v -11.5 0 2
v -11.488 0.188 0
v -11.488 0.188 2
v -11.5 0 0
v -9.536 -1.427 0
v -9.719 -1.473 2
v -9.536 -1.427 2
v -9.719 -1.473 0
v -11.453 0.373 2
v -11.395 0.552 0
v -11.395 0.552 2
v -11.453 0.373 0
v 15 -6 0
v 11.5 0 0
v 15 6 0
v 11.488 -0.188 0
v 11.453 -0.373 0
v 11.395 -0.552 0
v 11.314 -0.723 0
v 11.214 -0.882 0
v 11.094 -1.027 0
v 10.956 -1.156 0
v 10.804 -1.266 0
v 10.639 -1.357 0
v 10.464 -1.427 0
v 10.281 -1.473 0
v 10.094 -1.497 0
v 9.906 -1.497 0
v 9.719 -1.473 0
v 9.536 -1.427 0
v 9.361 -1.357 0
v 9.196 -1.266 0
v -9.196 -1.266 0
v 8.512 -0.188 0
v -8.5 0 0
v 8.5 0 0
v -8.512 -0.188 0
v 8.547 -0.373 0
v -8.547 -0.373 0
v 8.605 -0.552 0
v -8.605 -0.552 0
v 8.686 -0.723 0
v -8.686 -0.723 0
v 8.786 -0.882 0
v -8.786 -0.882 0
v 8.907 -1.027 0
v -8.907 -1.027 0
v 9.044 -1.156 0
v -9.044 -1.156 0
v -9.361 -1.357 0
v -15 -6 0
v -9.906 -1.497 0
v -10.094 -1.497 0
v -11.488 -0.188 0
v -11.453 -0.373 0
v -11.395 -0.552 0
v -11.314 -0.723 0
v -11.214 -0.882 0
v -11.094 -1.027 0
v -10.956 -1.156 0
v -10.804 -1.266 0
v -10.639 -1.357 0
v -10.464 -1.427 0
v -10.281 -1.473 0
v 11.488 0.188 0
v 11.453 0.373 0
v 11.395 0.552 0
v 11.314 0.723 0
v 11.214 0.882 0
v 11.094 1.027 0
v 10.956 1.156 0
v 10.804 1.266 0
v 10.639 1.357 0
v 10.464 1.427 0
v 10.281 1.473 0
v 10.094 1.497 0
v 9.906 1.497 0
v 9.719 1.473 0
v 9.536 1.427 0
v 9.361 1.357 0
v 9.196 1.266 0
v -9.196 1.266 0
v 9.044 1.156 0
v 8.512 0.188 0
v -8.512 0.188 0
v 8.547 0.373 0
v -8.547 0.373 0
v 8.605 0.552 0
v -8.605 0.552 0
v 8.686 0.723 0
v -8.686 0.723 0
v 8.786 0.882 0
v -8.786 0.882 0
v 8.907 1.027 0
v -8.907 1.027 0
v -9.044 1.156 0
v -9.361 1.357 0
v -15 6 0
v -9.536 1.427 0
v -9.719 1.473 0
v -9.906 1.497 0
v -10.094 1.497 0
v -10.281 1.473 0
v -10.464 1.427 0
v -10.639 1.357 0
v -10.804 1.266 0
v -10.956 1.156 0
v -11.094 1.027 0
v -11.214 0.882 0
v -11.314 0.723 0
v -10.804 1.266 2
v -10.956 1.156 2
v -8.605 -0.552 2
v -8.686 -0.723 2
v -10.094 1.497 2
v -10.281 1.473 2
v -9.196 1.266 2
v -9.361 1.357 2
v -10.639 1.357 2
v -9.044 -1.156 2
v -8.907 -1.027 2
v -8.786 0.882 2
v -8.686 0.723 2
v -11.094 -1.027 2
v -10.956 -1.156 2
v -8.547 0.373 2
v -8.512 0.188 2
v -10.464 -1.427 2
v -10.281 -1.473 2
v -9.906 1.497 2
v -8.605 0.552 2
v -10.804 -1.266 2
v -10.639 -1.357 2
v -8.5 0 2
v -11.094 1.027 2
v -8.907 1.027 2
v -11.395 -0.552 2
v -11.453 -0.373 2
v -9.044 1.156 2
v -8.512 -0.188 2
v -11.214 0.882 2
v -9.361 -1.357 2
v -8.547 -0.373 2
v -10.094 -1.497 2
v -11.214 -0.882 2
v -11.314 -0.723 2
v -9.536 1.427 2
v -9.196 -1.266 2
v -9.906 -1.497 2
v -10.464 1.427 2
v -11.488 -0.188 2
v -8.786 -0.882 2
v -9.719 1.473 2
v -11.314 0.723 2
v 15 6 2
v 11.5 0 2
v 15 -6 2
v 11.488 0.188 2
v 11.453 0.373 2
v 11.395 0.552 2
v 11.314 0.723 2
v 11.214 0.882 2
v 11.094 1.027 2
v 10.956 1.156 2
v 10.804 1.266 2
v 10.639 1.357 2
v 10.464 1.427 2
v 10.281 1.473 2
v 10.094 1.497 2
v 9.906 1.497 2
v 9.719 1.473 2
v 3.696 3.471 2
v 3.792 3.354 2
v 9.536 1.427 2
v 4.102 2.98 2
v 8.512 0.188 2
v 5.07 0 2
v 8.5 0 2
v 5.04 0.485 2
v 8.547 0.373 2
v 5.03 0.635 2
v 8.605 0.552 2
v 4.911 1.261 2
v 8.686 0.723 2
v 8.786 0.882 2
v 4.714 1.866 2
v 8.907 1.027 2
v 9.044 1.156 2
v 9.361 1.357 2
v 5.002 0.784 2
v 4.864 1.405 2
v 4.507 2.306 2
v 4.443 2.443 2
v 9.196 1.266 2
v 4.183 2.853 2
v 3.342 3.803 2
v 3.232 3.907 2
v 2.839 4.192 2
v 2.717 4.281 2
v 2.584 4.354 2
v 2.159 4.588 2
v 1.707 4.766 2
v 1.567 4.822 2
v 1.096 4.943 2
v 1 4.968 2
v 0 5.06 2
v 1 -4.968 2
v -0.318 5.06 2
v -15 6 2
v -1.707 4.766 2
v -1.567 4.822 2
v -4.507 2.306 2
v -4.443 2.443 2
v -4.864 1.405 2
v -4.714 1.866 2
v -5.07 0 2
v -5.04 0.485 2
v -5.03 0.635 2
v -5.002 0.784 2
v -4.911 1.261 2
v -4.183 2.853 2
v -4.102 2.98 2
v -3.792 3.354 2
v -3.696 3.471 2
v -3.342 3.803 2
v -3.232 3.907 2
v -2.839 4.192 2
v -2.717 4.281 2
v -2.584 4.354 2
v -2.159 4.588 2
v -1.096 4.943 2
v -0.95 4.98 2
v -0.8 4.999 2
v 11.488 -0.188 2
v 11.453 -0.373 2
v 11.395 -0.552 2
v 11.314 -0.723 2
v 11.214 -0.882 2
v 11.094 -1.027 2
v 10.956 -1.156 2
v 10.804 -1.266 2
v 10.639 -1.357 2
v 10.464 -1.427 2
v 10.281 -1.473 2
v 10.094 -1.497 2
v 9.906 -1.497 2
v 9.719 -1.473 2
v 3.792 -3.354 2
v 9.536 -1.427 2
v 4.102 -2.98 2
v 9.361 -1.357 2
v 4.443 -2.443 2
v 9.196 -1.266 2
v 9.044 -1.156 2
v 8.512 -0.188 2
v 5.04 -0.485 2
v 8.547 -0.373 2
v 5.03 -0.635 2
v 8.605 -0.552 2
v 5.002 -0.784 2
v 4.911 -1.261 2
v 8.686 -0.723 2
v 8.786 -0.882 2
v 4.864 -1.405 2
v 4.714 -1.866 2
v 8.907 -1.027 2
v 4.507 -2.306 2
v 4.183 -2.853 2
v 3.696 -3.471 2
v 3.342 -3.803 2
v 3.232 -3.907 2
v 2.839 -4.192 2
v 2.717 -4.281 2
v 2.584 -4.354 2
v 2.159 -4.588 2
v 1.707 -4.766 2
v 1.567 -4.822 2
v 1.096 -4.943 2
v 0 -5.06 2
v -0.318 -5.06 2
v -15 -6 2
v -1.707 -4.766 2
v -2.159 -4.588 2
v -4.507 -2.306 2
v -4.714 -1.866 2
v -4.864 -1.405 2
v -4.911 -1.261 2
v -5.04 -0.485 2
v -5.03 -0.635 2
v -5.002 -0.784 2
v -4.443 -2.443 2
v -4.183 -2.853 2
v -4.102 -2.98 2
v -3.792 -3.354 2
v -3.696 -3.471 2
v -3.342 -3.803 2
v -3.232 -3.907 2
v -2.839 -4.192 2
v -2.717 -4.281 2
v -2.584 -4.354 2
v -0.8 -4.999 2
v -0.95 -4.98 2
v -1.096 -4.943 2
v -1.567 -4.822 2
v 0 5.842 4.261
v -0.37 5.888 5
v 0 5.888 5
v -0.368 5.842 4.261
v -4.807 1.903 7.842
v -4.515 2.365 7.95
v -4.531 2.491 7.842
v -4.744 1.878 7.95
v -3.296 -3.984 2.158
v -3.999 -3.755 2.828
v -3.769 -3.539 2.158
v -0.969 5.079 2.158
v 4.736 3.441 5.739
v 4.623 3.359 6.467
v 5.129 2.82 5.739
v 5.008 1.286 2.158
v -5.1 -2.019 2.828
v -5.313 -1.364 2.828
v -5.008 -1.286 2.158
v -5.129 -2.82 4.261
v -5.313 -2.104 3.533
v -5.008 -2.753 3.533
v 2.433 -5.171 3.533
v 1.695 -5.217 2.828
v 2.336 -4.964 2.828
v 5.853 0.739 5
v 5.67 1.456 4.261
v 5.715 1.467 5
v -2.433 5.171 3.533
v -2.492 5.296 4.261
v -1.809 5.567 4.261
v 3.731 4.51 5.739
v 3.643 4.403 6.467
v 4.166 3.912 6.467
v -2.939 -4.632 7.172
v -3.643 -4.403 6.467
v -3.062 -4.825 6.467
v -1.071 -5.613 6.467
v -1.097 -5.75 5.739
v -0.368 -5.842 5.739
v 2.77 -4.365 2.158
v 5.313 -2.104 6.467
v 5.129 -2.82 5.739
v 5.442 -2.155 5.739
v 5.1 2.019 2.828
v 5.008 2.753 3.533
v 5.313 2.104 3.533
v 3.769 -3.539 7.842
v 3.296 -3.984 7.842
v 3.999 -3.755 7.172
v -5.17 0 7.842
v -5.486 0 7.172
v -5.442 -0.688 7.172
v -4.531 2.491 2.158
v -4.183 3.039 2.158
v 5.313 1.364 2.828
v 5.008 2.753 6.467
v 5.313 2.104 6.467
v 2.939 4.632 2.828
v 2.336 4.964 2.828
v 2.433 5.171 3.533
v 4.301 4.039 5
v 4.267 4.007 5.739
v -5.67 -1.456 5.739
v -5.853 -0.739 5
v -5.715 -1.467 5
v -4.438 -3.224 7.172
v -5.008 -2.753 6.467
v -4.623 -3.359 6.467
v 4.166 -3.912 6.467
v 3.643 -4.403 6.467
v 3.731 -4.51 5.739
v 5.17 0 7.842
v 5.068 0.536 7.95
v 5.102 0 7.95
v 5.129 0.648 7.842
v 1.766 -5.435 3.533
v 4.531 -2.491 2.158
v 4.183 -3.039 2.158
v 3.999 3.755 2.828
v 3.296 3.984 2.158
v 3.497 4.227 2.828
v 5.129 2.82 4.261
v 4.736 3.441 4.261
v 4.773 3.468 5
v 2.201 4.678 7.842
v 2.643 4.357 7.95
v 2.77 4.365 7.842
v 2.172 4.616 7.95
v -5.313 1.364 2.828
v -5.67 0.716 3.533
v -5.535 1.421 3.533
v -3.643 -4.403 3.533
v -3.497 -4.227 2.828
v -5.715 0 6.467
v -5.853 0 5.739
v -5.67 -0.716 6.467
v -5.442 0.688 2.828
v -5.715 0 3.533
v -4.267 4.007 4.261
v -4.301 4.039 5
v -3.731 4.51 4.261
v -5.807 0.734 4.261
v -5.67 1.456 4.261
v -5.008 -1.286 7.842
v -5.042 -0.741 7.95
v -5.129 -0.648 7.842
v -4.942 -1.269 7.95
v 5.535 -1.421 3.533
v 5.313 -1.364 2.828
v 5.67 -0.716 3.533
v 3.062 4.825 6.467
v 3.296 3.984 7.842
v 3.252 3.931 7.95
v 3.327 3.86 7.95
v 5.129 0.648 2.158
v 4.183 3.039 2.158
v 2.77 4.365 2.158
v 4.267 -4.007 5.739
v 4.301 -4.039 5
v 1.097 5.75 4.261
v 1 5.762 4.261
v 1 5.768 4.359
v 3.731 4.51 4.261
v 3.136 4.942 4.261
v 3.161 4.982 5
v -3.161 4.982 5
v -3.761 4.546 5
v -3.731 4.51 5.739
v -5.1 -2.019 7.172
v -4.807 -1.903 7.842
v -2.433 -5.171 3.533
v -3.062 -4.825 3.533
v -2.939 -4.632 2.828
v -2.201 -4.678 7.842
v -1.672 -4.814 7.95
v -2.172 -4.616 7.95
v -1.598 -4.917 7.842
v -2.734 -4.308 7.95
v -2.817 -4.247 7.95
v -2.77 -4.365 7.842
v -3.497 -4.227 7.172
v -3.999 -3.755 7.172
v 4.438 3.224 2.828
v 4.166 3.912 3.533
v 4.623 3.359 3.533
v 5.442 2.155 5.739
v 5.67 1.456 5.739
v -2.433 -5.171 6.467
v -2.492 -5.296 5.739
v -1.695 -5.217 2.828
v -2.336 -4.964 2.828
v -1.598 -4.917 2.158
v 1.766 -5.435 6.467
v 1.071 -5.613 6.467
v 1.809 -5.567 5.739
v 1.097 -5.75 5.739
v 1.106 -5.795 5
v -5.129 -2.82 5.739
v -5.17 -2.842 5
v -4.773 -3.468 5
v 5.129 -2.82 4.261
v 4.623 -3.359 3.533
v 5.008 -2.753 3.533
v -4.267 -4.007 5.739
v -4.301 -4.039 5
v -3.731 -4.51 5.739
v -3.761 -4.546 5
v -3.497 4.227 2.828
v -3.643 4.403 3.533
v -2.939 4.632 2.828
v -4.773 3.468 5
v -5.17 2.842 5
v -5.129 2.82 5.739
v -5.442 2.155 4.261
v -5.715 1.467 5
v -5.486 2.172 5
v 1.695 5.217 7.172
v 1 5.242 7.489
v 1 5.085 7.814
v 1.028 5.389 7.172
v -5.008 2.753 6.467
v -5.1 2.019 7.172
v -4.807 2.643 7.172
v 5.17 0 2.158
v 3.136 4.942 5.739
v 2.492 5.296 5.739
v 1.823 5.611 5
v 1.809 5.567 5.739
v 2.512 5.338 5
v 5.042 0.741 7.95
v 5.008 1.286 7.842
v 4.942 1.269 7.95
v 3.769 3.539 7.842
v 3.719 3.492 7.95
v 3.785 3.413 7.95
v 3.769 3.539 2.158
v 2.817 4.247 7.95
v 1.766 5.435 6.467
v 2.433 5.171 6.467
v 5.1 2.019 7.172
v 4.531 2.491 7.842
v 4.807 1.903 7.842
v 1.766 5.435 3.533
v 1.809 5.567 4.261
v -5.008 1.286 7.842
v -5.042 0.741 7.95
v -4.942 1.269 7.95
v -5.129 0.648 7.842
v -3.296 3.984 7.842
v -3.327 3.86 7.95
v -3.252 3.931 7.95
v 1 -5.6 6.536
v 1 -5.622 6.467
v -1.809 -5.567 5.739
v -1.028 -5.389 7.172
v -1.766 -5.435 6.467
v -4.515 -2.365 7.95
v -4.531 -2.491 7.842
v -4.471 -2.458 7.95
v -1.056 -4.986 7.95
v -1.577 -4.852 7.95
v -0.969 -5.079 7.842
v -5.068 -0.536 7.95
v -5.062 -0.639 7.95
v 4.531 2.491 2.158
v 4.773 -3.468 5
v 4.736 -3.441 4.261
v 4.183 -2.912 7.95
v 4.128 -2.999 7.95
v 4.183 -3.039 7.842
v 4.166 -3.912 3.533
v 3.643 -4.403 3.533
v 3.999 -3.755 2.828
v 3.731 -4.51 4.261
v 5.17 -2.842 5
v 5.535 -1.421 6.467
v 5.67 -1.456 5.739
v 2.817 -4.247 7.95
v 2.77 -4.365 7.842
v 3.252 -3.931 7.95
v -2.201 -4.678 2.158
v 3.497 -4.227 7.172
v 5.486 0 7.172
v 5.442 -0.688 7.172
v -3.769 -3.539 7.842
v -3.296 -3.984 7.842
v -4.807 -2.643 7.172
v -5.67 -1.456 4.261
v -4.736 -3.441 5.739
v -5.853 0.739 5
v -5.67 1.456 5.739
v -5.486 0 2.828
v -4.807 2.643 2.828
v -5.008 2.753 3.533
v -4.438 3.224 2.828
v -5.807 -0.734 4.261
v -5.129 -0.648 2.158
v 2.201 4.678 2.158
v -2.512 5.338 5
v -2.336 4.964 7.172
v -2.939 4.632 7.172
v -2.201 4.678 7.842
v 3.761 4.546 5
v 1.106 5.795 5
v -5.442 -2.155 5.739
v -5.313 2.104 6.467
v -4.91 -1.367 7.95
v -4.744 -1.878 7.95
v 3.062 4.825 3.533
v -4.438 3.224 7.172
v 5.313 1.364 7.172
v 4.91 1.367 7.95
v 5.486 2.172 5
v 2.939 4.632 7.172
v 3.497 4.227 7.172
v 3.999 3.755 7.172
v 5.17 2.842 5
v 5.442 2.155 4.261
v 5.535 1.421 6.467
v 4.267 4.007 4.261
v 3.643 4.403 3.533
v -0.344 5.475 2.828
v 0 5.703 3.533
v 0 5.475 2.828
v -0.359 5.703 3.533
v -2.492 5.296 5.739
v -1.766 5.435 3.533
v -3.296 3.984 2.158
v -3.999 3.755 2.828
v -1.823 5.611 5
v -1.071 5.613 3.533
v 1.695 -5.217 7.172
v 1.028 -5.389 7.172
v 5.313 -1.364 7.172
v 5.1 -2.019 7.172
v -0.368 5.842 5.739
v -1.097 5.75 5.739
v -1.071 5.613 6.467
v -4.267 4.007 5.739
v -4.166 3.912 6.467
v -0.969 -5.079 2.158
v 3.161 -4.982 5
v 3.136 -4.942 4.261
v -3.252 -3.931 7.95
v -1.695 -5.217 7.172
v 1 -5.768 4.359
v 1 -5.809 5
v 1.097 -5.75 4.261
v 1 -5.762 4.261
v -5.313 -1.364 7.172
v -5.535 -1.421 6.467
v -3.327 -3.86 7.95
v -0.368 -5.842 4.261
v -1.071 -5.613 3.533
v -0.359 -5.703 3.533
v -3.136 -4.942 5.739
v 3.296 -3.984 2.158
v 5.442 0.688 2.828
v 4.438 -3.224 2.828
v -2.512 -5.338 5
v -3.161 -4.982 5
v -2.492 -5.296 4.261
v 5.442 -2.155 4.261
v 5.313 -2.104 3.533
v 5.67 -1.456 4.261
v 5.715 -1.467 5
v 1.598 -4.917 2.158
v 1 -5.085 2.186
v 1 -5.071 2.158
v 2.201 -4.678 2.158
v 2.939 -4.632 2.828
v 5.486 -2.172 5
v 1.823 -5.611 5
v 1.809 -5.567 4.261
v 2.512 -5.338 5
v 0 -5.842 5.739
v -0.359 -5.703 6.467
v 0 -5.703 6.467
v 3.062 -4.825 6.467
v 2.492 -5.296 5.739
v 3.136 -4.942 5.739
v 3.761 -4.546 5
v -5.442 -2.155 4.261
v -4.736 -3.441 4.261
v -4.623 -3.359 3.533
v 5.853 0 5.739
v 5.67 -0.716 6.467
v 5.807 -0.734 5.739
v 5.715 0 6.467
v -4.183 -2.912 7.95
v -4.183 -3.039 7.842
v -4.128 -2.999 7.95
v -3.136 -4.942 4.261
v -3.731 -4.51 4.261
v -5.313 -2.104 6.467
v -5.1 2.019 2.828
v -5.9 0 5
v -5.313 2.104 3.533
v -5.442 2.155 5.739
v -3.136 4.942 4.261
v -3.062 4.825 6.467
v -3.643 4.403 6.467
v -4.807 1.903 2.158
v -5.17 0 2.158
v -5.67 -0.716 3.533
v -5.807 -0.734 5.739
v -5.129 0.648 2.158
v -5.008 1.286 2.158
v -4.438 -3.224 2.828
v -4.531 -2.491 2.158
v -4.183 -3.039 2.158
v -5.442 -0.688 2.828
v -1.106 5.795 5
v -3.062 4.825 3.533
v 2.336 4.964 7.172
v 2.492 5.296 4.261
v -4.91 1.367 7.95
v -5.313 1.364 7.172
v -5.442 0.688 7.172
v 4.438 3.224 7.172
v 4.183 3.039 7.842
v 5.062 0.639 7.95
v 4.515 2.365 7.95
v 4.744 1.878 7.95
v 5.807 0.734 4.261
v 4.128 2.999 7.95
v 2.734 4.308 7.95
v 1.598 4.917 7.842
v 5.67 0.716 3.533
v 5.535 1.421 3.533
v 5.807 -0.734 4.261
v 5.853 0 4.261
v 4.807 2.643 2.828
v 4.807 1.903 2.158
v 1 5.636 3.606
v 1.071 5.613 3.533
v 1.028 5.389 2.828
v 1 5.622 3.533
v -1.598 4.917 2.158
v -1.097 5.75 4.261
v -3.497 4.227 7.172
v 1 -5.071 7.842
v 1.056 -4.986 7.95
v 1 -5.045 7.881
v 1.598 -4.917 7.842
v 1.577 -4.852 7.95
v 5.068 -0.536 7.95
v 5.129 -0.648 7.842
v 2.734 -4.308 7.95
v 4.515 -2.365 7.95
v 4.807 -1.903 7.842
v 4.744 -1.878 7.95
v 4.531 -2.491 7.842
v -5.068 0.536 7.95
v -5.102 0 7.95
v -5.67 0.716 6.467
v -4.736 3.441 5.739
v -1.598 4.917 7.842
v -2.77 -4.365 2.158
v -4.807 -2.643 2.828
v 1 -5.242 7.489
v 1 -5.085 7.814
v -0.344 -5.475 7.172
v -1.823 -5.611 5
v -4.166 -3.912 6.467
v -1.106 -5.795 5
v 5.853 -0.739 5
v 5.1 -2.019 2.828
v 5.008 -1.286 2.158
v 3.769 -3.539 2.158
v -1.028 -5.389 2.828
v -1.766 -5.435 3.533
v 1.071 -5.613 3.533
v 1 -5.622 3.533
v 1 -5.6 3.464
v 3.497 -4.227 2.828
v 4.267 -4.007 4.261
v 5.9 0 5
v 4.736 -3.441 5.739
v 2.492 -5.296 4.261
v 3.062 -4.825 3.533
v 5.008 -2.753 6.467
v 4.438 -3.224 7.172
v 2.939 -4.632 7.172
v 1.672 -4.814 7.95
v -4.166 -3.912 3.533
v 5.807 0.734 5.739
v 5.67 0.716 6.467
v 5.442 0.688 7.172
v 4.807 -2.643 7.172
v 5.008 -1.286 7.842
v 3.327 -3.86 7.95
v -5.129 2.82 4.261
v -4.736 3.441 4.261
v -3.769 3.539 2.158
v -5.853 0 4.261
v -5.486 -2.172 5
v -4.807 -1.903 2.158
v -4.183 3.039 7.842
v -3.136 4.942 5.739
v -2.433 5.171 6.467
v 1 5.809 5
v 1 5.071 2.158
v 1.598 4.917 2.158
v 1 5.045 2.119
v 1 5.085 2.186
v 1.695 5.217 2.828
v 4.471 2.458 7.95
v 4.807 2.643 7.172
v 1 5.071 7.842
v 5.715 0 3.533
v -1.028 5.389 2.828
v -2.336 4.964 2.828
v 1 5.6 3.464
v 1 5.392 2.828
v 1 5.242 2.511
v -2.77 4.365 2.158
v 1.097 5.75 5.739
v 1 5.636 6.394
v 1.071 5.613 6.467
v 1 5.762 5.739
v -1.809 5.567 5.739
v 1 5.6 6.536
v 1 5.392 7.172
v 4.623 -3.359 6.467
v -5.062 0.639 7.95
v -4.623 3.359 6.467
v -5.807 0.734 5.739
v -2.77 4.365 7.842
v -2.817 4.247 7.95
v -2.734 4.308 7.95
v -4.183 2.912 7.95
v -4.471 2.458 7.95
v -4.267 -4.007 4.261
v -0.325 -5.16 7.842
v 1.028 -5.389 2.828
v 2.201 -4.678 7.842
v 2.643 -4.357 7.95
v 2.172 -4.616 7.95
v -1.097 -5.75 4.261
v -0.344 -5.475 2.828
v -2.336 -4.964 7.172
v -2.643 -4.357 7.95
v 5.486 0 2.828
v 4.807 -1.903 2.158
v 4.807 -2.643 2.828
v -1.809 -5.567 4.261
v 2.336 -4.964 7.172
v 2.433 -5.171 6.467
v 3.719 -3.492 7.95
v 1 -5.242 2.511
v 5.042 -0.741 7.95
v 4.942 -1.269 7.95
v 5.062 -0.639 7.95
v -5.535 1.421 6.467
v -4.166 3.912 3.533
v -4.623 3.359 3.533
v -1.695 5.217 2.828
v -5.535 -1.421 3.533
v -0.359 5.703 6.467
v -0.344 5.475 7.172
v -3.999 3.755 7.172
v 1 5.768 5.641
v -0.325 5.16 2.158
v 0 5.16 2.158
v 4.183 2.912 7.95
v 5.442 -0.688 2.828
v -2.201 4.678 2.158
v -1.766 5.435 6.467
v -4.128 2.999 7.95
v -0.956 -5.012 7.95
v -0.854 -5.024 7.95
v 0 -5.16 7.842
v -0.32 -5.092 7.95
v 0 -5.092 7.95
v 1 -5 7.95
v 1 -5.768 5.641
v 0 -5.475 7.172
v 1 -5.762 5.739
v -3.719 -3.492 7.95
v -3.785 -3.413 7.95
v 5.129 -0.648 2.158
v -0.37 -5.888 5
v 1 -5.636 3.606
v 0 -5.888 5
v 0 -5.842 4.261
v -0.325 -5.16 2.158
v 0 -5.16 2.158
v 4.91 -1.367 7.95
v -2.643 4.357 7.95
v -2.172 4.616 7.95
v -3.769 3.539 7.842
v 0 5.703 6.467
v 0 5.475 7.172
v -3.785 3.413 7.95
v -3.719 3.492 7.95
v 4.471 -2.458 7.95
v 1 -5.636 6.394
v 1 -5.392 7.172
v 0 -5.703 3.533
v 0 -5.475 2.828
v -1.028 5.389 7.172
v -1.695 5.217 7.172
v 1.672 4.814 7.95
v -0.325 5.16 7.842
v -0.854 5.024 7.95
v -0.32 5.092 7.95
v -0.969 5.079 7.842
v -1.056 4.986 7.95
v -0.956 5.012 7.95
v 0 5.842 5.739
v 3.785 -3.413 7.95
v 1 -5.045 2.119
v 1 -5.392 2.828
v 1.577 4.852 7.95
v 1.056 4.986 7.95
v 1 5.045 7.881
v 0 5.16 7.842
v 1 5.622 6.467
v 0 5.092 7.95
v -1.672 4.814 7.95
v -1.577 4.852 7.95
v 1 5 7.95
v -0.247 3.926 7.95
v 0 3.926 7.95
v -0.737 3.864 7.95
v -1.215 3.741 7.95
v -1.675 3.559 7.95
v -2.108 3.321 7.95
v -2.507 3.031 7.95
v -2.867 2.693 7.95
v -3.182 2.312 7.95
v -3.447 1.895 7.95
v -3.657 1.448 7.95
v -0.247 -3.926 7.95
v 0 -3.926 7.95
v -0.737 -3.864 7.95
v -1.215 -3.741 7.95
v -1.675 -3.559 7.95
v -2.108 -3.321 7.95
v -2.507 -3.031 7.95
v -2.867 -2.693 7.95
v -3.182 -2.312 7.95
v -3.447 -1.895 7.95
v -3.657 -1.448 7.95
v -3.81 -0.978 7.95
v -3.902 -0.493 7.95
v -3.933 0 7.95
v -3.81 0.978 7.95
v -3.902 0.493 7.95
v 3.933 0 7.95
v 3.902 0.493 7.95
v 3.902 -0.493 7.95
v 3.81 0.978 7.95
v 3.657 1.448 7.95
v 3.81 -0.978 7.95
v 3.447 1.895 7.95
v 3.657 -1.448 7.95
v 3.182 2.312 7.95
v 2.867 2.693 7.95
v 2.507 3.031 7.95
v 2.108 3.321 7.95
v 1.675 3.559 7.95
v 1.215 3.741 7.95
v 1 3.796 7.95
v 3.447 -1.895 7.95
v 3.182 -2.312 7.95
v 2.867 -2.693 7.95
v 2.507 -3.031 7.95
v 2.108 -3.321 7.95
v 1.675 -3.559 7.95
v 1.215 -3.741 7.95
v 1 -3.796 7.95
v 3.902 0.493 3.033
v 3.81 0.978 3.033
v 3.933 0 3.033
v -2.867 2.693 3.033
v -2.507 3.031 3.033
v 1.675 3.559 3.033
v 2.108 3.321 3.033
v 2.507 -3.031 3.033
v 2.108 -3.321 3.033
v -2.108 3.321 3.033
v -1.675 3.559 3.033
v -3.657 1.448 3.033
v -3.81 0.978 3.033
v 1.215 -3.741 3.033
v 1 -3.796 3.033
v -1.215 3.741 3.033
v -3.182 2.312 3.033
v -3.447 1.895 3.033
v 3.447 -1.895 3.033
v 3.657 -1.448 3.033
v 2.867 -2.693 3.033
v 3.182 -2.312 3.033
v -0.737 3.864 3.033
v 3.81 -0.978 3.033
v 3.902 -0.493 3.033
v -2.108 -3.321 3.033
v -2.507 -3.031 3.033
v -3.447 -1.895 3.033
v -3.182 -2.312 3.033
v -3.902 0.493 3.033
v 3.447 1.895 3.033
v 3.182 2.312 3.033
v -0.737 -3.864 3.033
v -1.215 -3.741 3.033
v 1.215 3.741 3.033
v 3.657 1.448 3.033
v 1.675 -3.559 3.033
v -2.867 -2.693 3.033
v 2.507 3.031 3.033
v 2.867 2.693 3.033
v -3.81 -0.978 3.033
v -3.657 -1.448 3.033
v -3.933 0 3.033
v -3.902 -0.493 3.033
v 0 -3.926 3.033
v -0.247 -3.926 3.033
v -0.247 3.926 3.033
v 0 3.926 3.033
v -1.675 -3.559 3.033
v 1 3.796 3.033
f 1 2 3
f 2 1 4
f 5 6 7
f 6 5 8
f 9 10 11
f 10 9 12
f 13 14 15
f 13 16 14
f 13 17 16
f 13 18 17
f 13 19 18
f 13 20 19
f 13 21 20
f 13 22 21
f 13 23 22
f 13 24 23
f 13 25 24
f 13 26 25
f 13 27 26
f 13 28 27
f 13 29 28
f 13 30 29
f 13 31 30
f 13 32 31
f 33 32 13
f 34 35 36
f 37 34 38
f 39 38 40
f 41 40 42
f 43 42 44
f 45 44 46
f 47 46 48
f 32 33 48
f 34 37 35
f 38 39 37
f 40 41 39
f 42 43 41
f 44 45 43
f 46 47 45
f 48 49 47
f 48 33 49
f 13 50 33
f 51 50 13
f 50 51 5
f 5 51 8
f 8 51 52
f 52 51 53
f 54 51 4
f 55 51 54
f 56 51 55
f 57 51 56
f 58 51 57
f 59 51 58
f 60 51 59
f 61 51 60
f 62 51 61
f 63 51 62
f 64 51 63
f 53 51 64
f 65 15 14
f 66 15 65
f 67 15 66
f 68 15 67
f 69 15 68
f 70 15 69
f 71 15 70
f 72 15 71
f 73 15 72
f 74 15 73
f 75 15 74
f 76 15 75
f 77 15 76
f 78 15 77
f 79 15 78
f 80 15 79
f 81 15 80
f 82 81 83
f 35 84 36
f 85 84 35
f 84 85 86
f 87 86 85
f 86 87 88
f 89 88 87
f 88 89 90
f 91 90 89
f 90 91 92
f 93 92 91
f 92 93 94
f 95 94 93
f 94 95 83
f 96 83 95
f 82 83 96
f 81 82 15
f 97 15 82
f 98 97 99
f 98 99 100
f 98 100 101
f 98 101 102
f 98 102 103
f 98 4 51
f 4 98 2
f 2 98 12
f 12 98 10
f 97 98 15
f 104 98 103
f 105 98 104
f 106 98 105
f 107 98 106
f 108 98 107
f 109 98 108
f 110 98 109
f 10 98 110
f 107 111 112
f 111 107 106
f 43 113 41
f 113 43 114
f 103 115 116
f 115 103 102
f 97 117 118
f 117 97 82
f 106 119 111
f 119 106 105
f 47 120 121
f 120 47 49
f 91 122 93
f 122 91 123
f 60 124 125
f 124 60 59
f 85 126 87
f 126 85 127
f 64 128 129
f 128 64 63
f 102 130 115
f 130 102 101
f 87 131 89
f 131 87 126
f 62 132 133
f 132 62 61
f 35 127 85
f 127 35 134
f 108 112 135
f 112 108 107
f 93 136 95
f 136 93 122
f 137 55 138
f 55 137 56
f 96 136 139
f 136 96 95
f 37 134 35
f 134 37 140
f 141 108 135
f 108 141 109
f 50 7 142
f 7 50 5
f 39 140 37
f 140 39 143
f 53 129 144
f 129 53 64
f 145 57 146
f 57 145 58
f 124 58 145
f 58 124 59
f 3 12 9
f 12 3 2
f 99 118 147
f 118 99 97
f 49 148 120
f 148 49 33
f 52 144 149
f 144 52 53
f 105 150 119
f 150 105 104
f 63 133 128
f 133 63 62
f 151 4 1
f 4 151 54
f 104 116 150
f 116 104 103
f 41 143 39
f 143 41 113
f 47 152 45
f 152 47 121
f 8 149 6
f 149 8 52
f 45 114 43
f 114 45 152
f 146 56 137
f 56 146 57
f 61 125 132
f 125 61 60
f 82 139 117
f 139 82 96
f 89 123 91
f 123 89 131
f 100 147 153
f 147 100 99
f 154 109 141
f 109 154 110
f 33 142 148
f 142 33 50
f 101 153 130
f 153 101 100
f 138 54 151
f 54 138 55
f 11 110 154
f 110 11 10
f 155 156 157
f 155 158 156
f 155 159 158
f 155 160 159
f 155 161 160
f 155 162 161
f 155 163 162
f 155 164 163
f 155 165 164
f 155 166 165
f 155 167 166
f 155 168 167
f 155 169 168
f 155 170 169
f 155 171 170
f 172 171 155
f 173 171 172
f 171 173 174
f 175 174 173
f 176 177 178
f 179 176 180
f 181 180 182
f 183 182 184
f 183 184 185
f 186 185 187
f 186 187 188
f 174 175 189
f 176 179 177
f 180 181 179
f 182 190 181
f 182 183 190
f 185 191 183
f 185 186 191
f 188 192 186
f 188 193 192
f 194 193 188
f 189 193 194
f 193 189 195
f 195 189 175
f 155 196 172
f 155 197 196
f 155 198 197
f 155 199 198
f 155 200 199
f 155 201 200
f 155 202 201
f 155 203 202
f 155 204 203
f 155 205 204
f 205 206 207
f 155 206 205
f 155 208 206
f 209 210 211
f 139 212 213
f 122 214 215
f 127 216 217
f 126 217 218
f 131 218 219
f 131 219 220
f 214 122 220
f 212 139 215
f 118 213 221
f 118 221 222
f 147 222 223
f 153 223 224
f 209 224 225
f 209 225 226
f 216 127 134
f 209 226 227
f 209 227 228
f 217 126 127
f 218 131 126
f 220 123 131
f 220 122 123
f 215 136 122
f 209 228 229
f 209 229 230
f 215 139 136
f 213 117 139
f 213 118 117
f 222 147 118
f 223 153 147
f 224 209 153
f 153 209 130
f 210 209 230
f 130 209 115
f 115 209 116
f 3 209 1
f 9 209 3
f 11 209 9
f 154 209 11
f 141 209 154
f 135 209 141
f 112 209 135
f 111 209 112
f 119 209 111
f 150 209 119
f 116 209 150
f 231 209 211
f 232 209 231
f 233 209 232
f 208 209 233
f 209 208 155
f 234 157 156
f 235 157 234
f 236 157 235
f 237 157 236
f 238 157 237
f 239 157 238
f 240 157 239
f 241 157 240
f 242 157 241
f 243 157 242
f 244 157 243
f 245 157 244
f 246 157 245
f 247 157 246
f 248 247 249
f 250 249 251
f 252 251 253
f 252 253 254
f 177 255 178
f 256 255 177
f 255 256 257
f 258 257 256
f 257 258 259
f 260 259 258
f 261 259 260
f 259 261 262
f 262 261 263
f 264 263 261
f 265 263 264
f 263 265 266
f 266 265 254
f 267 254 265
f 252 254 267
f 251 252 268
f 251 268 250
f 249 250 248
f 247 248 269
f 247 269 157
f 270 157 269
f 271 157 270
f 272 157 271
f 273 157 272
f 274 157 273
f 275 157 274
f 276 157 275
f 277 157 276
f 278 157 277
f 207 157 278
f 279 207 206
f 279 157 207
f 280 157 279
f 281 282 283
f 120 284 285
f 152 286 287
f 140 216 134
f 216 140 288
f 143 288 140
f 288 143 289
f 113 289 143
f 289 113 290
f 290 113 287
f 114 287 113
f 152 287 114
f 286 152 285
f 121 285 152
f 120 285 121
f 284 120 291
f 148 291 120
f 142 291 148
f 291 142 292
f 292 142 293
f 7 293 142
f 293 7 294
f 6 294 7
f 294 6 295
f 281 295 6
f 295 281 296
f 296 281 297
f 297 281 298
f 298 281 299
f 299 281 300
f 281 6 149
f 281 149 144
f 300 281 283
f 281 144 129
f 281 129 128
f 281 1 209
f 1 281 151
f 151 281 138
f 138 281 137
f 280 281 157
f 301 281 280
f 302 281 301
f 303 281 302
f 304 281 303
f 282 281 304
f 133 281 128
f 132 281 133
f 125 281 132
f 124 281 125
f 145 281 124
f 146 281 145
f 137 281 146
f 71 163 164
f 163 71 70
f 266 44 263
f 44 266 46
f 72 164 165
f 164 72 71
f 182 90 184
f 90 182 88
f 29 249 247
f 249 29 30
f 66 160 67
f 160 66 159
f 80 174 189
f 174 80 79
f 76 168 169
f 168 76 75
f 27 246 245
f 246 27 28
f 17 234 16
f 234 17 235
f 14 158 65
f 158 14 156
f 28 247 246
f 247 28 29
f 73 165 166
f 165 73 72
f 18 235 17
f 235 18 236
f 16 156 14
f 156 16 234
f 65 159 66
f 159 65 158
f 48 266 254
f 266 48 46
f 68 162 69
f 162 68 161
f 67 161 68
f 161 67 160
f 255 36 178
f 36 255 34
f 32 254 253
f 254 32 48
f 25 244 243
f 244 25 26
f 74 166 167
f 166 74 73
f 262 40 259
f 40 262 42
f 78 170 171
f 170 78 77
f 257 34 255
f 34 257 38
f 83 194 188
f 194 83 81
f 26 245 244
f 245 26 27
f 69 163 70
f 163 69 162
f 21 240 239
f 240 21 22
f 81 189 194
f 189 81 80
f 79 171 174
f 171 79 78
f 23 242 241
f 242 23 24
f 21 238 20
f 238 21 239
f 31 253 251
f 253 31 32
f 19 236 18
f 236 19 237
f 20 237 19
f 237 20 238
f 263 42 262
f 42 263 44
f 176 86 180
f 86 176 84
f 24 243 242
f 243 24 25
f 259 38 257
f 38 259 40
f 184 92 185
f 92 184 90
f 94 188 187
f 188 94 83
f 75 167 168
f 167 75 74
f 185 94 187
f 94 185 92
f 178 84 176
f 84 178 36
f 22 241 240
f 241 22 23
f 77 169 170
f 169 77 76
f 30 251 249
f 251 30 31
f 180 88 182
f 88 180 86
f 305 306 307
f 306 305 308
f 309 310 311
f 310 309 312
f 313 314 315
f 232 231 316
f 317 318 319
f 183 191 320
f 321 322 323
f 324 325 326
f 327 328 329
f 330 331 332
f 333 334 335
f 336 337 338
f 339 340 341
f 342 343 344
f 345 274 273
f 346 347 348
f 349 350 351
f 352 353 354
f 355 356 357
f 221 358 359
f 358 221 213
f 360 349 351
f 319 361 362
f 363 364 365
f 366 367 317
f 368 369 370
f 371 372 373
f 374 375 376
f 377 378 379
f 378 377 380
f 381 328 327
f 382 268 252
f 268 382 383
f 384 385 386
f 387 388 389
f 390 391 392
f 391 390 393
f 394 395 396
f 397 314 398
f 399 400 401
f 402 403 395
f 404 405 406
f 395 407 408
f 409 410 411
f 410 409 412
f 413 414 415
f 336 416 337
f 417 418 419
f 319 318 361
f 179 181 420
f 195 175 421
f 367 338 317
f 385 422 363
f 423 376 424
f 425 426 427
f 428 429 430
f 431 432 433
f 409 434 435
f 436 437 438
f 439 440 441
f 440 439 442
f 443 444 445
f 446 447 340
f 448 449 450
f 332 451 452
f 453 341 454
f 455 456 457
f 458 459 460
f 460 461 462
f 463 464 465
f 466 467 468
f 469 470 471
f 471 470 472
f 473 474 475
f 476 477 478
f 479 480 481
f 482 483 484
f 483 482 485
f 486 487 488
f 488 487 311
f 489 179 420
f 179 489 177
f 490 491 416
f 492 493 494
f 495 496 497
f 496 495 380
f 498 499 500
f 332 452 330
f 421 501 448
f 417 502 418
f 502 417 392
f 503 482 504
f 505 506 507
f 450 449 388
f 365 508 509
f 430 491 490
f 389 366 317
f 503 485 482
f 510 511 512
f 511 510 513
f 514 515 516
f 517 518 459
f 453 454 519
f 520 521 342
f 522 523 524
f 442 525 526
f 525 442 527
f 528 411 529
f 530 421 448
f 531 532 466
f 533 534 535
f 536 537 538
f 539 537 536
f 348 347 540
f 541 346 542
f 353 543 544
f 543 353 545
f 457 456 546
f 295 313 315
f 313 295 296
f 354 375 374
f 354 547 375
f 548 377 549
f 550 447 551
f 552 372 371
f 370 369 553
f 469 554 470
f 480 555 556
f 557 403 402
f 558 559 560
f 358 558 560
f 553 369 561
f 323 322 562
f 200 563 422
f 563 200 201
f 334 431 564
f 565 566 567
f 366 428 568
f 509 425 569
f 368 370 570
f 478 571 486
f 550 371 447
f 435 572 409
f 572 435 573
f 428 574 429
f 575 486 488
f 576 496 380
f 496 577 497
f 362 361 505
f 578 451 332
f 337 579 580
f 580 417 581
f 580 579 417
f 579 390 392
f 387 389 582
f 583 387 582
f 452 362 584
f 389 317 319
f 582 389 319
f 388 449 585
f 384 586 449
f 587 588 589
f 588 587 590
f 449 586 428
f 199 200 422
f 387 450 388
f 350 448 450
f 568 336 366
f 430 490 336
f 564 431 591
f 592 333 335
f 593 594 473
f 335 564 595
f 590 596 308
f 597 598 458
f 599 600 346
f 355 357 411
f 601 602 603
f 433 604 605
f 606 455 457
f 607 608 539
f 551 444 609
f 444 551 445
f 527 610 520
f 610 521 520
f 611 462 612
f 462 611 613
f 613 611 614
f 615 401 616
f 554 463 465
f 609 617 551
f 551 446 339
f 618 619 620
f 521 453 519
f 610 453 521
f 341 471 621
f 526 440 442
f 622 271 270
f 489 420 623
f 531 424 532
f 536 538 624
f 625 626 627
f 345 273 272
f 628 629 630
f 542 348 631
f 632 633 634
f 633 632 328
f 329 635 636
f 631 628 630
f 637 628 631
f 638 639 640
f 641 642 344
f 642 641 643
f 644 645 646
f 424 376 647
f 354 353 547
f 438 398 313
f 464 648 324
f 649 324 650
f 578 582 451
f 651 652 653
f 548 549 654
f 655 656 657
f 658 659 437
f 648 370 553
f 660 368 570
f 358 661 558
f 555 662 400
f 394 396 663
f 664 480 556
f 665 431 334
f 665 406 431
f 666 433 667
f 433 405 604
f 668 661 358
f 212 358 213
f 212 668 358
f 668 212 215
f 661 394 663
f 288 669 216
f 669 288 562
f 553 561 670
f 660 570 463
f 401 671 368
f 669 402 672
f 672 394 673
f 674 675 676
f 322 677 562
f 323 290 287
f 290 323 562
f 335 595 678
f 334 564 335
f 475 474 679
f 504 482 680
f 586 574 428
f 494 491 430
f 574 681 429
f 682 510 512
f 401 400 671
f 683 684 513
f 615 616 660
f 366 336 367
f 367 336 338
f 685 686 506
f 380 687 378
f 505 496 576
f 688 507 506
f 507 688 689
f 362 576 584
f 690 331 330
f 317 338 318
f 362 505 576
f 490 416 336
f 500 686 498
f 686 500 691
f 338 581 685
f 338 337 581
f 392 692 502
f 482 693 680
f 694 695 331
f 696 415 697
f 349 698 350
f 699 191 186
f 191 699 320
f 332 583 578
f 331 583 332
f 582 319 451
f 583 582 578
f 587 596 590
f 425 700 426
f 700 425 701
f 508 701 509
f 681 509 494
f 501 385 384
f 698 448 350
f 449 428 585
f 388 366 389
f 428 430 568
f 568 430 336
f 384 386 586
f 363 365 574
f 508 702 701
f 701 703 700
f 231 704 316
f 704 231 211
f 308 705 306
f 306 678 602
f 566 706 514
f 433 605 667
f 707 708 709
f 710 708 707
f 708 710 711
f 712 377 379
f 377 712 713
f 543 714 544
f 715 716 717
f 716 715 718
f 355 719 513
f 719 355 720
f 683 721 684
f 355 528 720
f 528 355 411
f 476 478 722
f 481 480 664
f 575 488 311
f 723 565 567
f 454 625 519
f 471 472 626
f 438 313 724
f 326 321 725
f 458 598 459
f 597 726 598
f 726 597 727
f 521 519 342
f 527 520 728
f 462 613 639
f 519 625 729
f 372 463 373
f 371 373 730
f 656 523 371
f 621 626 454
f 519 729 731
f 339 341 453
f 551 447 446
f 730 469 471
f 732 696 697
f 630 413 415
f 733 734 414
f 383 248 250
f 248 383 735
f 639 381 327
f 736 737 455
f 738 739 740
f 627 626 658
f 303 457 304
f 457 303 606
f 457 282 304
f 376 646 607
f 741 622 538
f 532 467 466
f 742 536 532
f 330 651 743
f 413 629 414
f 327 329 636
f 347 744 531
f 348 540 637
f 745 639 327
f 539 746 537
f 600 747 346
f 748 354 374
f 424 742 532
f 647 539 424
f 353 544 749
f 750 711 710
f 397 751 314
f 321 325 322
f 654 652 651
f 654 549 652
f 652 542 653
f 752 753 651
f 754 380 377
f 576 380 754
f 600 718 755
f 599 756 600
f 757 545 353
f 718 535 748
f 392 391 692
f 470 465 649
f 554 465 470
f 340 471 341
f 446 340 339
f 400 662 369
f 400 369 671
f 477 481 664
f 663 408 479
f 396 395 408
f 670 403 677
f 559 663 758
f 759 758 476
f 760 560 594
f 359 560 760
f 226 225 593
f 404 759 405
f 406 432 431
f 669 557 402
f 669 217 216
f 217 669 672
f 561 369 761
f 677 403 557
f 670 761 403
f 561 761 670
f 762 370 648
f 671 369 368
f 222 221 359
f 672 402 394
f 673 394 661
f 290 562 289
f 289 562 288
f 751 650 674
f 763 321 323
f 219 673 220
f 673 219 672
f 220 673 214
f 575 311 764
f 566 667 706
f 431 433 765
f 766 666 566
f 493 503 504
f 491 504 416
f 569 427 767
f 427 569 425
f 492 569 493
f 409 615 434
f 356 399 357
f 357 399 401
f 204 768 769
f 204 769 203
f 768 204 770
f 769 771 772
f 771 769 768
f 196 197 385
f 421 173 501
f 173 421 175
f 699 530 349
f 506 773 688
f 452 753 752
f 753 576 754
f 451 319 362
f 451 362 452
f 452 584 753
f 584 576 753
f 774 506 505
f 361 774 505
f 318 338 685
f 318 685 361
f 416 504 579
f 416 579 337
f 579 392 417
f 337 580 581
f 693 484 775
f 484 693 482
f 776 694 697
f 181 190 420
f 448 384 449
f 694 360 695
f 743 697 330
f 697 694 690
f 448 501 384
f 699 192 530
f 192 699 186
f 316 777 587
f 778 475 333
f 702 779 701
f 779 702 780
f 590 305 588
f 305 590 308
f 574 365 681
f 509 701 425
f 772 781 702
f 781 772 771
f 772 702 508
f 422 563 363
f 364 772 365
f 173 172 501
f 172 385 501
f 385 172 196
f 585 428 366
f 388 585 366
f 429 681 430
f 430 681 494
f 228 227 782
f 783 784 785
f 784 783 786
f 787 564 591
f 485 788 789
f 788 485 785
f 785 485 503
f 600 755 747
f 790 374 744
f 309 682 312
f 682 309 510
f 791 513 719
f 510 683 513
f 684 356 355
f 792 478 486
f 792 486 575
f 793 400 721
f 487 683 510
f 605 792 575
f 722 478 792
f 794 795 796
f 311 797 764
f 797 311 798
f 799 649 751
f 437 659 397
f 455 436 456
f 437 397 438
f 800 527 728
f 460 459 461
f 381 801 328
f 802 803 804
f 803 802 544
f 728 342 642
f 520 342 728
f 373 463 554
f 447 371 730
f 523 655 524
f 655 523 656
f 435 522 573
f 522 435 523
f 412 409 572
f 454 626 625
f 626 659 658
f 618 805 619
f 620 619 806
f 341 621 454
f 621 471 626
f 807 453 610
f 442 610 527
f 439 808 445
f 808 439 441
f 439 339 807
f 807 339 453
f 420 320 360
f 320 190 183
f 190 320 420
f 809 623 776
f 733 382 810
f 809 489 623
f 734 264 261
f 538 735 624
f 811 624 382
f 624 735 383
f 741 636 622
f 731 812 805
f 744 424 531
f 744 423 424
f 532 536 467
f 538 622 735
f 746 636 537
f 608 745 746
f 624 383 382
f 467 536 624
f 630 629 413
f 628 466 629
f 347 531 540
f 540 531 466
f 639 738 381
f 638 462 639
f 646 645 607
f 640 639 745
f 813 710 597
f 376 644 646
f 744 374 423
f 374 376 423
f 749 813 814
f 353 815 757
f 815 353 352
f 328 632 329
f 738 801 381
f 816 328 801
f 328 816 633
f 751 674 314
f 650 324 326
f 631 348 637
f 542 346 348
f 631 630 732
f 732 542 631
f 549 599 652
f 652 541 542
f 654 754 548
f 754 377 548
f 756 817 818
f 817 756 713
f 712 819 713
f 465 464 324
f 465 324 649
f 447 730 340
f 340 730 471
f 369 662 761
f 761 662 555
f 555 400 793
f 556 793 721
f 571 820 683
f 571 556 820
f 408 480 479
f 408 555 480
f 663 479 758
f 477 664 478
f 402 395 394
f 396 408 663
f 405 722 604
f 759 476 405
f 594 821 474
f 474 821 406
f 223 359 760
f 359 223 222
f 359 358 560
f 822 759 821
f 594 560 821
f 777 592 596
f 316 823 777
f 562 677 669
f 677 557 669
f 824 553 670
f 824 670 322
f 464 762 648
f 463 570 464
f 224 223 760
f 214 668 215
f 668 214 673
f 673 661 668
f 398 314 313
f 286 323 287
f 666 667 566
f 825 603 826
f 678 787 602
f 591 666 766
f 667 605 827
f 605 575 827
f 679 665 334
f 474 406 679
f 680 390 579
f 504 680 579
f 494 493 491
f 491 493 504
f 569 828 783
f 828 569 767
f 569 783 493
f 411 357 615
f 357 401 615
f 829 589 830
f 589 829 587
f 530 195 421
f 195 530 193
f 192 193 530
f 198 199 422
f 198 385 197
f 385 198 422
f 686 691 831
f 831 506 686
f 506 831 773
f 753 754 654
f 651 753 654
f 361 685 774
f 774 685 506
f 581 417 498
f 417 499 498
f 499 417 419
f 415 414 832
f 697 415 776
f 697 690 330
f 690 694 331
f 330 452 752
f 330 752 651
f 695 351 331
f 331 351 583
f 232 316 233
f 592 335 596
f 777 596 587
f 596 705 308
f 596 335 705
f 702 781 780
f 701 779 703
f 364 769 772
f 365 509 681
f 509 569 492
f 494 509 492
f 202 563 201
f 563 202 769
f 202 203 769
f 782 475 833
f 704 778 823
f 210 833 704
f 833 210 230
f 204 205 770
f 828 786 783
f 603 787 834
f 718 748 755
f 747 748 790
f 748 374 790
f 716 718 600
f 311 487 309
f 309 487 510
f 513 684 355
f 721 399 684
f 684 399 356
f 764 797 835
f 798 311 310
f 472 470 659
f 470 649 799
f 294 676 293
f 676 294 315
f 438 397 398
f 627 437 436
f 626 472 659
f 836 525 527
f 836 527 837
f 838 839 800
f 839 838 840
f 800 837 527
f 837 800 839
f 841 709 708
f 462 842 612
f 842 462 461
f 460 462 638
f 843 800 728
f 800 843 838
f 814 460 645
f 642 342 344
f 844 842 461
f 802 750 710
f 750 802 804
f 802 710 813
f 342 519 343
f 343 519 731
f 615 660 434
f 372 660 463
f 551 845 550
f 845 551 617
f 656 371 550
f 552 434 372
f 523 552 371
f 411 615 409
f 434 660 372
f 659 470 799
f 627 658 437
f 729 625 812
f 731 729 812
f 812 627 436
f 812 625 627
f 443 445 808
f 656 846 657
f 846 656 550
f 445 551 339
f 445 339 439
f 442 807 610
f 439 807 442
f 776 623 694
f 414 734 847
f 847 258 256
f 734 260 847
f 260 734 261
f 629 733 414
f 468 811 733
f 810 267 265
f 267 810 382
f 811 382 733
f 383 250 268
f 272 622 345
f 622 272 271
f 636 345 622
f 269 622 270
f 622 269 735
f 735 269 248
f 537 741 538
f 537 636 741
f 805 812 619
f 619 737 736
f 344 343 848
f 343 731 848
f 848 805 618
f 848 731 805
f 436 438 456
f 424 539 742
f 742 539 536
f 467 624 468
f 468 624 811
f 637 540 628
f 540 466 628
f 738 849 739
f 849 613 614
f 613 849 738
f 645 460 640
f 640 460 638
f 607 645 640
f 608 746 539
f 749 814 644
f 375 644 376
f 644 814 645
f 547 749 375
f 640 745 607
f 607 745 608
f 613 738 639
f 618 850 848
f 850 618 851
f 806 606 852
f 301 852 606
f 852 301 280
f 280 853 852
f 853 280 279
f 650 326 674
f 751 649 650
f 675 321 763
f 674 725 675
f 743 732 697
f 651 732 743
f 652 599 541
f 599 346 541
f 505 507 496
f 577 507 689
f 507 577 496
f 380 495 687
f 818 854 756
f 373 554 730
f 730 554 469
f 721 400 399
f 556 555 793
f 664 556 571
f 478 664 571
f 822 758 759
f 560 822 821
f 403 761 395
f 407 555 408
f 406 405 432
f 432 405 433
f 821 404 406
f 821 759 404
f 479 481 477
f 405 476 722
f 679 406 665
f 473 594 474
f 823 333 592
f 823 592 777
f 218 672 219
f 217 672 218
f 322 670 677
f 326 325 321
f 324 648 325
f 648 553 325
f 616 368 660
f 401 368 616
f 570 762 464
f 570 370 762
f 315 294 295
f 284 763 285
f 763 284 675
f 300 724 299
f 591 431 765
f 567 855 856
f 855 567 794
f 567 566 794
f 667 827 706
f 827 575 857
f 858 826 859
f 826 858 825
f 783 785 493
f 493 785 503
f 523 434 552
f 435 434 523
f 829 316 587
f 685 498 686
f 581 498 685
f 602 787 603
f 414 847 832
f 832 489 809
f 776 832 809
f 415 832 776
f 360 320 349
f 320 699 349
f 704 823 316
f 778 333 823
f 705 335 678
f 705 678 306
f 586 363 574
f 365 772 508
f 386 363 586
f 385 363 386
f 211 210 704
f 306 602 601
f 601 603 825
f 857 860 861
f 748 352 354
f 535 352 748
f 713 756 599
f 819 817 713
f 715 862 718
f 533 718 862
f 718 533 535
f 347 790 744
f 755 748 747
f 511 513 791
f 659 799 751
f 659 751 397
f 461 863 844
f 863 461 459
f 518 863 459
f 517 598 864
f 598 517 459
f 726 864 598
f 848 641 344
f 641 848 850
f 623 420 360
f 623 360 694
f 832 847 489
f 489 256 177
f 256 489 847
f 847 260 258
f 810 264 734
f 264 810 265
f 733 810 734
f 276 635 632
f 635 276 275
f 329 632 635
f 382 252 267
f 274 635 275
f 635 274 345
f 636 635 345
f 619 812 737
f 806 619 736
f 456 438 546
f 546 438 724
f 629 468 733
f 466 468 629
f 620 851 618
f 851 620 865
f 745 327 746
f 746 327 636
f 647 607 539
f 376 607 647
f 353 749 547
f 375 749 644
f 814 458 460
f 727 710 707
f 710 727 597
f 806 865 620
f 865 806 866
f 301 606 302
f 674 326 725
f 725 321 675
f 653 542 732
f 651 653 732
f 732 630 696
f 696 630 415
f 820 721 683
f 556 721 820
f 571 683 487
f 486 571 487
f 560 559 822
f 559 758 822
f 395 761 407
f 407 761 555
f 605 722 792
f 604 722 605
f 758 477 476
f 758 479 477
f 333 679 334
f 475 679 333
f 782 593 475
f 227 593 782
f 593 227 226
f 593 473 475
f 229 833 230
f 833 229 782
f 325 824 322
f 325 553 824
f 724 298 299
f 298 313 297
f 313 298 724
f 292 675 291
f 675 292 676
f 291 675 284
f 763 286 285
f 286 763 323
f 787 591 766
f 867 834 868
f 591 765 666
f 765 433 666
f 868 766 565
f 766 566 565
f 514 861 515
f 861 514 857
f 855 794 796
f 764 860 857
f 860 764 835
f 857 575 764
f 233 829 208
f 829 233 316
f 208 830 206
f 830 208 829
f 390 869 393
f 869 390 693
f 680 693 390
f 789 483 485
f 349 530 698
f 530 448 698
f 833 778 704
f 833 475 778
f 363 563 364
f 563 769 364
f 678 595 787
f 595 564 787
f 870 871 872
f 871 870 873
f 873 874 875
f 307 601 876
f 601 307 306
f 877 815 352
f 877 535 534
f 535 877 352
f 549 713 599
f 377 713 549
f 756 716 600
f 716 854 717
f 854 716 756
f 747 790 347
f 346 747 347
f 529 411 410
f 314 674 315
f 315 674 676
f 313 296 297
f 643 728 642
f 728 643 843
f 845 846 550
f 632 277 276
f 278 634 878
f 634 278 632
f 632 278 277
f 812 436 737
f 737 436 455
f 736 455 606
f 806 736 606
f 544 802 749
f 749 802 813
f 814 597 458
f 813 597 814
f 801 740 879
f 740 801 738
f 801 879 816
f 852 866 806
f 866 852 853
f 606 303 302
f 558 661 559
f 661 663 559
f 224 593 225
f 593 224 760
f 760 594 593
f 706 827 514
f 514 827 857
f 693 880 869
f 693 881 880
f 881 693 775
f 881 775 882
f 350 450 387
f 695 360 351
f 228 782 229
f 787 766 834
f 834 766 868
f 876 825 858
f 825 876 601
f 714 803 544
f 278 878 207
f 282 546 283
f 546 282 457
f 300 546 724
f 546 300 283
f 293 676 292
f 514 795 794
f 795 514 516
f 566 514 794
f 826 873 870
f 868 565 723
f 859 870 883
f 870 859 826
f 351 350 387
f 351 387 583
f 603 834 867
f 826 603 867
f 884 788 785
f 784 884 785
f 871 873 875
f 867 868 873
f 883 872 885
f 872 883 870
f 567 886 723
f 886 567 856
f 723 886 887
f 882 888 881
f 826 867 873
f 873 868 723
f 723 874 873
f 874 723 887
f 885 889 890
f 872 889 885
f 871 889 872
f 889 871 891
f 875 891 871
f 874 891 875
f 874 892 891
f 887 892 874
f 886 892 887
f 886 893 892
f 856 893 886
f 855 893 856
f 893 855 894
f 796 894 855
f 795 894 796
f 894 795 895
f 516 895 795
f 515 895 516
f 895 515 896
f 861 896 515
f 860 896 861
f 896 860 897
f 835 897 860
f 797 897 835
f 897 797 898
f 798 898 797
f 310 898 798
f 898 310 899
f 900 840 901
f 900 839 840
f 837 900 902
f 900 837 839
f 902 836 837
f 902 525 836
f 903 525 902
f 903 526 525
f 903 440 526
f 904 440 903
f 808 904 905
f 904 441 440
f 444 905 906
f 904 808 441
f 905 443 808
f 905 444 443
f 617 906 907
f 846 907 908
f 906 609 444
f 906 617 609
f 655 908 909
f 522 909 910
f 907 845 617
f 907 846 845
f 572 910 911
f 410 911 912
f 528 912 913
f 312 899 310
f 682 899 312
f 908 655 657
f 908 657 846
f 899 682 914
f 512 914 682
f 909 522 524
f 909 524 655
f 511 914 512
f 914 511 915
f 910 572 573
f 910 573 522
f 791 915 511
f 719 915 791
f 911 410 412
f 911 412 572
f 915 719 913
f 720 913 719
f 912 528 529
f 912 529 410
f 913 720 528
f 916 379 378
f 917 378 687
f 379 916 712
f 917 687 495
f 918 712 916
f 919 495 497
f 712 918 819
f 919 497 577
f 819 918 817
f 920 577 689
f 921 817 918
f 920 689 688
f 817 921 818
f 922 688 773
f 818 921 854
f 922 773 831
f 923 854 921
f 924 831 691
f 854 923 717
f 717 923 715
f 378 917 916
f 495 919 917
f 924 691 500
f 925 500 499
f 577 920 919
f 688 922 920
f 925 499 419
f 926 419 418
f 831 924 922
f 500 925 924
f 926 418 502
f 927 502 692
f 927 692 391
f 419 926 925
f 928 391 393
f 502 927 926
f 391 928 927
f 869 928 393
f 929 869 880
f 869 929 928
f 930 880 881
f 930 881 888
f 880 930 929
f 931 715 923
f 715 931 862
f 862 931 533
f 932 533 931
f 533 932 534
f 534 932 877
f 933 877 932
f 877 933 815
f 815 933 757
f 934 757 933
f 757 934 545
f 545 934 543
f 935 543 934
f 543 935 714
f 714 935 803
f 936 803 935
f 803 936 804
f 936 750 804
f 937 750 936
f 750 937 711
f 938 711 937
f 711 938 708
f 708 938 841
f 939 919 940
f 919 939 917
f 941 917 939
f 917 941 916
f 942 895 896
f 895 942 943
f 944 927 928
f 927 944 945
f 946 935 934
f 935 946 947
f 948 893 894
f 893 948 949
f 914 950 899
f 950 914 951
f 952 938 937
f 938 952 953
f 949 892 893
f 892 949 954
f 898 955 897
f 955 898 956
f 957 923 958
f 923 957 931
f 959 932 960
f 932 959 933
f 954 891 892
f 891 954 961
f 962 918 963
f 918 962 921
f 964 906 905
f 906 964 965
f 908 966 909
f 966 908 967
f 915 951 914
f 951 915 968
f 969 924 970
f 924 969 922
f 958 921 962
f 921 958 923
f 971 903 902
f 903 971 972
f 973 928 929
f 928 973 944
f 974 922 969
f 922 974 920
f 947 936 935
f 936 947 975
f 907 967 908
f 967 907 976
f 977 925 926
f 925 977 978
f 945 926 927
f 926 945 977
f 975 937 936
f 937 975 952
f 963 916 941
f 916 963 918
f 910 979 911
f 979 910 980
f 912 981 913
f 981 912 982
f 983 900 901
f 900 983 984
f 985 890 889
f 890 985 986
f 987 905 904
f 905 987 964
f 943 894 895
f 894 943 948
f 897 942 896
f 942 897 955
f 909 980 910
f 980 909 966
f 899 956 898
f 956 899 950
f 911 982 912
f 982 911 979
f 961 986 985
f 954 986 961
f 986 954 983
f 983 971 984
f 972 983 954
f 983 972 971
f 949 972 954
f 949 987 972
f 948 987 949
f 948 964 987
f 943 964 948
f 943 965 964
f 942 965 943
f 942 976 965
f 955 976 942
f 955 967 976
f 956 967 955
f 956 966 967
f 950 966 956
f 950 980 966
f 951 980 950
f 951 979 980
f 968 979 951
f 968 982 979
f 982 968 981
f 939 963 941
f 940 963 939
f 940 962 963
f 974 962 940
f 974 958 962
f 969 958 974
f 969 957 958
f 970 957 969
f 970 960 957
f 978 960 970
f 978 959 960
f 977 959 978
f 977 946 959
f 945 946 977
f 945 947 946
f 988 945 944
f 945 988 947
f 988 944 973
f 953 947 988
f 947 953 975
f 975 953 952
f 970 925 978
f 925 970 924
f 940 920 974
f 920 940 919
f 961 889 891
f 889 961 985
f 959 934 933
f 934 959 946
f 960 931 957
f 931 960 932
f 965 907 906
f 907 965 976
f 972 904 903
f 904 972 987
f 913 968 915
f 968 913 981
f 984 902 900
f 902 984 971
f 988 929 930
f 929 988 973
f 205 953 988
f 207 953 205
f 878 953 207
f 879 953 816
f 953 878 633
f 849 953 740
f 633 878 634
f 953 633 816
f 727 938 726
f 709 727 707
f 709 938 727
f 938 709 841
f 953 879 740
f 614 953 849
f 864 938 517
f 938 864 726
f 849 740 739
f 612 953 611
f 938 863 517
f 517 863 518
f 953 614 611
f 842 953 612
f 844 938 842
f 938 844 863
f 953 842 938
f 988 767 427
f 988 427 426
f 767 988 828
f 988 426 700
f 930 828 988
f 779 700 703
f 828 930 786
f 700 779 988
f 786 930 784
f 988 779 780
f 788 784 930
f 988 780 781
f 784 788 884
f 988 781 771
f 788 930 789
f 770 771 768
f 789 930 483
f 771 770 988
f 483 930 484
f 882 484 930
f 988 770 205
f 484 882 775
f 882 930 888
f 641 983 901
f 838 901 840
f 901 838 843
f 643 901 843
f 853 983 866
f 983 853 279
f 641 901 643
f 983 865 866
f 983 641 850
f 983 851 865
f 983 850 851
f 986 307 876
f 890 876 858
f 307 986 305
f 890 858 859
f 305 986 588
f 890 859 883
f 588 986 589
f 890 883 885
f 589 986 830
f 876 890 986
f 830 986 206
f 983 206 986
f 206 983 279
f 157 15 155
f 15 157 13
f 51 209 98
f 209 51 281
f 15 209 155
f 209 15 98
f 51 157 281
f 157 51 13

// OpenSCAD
$fn=50;
function X(a) = a[0];
function Y(a) = a[1];
function Z(a) = a[2];

BASE=[30,12,2];
SCREW_DIAM=3;

BALL=11.8;

module xsphere(diam) {
  translate([0,0,-diam/2])
  difference() {
    translate([0,0,diam/2])
      sphere(d=diam);
    cylinder(diam/5,d=diam);  // chop top of sphere
    translate([0,0,diam*3/4]) cylinder(diam/4,d=diam);  // chop bottom of sphere
    translate([0,0,diam/3]) cylinder(diam,d=diam/1.5); // hollow out sphere
    translate([0,-Y(BASE)/2,Z(BASE)*6/5]) cube([1,Y(BASE),BALL]); // splitter
  }
}

module main() {
  difference() {
    union() {
      translate([0,0,5]) xsphere(BALL);
      //cylinder(2*Z(BASE),d=BALL/1.5);
      translate([-X(BASE)/2,-Y(BASE)/2,0]) cube(BASE);
    }
    for (i = [-1,1])
      translate([X(BASE)/3*i,0,0])
        #cylinder(Z(BASE),d=SCREW_DIAM);
  }
}

main();
